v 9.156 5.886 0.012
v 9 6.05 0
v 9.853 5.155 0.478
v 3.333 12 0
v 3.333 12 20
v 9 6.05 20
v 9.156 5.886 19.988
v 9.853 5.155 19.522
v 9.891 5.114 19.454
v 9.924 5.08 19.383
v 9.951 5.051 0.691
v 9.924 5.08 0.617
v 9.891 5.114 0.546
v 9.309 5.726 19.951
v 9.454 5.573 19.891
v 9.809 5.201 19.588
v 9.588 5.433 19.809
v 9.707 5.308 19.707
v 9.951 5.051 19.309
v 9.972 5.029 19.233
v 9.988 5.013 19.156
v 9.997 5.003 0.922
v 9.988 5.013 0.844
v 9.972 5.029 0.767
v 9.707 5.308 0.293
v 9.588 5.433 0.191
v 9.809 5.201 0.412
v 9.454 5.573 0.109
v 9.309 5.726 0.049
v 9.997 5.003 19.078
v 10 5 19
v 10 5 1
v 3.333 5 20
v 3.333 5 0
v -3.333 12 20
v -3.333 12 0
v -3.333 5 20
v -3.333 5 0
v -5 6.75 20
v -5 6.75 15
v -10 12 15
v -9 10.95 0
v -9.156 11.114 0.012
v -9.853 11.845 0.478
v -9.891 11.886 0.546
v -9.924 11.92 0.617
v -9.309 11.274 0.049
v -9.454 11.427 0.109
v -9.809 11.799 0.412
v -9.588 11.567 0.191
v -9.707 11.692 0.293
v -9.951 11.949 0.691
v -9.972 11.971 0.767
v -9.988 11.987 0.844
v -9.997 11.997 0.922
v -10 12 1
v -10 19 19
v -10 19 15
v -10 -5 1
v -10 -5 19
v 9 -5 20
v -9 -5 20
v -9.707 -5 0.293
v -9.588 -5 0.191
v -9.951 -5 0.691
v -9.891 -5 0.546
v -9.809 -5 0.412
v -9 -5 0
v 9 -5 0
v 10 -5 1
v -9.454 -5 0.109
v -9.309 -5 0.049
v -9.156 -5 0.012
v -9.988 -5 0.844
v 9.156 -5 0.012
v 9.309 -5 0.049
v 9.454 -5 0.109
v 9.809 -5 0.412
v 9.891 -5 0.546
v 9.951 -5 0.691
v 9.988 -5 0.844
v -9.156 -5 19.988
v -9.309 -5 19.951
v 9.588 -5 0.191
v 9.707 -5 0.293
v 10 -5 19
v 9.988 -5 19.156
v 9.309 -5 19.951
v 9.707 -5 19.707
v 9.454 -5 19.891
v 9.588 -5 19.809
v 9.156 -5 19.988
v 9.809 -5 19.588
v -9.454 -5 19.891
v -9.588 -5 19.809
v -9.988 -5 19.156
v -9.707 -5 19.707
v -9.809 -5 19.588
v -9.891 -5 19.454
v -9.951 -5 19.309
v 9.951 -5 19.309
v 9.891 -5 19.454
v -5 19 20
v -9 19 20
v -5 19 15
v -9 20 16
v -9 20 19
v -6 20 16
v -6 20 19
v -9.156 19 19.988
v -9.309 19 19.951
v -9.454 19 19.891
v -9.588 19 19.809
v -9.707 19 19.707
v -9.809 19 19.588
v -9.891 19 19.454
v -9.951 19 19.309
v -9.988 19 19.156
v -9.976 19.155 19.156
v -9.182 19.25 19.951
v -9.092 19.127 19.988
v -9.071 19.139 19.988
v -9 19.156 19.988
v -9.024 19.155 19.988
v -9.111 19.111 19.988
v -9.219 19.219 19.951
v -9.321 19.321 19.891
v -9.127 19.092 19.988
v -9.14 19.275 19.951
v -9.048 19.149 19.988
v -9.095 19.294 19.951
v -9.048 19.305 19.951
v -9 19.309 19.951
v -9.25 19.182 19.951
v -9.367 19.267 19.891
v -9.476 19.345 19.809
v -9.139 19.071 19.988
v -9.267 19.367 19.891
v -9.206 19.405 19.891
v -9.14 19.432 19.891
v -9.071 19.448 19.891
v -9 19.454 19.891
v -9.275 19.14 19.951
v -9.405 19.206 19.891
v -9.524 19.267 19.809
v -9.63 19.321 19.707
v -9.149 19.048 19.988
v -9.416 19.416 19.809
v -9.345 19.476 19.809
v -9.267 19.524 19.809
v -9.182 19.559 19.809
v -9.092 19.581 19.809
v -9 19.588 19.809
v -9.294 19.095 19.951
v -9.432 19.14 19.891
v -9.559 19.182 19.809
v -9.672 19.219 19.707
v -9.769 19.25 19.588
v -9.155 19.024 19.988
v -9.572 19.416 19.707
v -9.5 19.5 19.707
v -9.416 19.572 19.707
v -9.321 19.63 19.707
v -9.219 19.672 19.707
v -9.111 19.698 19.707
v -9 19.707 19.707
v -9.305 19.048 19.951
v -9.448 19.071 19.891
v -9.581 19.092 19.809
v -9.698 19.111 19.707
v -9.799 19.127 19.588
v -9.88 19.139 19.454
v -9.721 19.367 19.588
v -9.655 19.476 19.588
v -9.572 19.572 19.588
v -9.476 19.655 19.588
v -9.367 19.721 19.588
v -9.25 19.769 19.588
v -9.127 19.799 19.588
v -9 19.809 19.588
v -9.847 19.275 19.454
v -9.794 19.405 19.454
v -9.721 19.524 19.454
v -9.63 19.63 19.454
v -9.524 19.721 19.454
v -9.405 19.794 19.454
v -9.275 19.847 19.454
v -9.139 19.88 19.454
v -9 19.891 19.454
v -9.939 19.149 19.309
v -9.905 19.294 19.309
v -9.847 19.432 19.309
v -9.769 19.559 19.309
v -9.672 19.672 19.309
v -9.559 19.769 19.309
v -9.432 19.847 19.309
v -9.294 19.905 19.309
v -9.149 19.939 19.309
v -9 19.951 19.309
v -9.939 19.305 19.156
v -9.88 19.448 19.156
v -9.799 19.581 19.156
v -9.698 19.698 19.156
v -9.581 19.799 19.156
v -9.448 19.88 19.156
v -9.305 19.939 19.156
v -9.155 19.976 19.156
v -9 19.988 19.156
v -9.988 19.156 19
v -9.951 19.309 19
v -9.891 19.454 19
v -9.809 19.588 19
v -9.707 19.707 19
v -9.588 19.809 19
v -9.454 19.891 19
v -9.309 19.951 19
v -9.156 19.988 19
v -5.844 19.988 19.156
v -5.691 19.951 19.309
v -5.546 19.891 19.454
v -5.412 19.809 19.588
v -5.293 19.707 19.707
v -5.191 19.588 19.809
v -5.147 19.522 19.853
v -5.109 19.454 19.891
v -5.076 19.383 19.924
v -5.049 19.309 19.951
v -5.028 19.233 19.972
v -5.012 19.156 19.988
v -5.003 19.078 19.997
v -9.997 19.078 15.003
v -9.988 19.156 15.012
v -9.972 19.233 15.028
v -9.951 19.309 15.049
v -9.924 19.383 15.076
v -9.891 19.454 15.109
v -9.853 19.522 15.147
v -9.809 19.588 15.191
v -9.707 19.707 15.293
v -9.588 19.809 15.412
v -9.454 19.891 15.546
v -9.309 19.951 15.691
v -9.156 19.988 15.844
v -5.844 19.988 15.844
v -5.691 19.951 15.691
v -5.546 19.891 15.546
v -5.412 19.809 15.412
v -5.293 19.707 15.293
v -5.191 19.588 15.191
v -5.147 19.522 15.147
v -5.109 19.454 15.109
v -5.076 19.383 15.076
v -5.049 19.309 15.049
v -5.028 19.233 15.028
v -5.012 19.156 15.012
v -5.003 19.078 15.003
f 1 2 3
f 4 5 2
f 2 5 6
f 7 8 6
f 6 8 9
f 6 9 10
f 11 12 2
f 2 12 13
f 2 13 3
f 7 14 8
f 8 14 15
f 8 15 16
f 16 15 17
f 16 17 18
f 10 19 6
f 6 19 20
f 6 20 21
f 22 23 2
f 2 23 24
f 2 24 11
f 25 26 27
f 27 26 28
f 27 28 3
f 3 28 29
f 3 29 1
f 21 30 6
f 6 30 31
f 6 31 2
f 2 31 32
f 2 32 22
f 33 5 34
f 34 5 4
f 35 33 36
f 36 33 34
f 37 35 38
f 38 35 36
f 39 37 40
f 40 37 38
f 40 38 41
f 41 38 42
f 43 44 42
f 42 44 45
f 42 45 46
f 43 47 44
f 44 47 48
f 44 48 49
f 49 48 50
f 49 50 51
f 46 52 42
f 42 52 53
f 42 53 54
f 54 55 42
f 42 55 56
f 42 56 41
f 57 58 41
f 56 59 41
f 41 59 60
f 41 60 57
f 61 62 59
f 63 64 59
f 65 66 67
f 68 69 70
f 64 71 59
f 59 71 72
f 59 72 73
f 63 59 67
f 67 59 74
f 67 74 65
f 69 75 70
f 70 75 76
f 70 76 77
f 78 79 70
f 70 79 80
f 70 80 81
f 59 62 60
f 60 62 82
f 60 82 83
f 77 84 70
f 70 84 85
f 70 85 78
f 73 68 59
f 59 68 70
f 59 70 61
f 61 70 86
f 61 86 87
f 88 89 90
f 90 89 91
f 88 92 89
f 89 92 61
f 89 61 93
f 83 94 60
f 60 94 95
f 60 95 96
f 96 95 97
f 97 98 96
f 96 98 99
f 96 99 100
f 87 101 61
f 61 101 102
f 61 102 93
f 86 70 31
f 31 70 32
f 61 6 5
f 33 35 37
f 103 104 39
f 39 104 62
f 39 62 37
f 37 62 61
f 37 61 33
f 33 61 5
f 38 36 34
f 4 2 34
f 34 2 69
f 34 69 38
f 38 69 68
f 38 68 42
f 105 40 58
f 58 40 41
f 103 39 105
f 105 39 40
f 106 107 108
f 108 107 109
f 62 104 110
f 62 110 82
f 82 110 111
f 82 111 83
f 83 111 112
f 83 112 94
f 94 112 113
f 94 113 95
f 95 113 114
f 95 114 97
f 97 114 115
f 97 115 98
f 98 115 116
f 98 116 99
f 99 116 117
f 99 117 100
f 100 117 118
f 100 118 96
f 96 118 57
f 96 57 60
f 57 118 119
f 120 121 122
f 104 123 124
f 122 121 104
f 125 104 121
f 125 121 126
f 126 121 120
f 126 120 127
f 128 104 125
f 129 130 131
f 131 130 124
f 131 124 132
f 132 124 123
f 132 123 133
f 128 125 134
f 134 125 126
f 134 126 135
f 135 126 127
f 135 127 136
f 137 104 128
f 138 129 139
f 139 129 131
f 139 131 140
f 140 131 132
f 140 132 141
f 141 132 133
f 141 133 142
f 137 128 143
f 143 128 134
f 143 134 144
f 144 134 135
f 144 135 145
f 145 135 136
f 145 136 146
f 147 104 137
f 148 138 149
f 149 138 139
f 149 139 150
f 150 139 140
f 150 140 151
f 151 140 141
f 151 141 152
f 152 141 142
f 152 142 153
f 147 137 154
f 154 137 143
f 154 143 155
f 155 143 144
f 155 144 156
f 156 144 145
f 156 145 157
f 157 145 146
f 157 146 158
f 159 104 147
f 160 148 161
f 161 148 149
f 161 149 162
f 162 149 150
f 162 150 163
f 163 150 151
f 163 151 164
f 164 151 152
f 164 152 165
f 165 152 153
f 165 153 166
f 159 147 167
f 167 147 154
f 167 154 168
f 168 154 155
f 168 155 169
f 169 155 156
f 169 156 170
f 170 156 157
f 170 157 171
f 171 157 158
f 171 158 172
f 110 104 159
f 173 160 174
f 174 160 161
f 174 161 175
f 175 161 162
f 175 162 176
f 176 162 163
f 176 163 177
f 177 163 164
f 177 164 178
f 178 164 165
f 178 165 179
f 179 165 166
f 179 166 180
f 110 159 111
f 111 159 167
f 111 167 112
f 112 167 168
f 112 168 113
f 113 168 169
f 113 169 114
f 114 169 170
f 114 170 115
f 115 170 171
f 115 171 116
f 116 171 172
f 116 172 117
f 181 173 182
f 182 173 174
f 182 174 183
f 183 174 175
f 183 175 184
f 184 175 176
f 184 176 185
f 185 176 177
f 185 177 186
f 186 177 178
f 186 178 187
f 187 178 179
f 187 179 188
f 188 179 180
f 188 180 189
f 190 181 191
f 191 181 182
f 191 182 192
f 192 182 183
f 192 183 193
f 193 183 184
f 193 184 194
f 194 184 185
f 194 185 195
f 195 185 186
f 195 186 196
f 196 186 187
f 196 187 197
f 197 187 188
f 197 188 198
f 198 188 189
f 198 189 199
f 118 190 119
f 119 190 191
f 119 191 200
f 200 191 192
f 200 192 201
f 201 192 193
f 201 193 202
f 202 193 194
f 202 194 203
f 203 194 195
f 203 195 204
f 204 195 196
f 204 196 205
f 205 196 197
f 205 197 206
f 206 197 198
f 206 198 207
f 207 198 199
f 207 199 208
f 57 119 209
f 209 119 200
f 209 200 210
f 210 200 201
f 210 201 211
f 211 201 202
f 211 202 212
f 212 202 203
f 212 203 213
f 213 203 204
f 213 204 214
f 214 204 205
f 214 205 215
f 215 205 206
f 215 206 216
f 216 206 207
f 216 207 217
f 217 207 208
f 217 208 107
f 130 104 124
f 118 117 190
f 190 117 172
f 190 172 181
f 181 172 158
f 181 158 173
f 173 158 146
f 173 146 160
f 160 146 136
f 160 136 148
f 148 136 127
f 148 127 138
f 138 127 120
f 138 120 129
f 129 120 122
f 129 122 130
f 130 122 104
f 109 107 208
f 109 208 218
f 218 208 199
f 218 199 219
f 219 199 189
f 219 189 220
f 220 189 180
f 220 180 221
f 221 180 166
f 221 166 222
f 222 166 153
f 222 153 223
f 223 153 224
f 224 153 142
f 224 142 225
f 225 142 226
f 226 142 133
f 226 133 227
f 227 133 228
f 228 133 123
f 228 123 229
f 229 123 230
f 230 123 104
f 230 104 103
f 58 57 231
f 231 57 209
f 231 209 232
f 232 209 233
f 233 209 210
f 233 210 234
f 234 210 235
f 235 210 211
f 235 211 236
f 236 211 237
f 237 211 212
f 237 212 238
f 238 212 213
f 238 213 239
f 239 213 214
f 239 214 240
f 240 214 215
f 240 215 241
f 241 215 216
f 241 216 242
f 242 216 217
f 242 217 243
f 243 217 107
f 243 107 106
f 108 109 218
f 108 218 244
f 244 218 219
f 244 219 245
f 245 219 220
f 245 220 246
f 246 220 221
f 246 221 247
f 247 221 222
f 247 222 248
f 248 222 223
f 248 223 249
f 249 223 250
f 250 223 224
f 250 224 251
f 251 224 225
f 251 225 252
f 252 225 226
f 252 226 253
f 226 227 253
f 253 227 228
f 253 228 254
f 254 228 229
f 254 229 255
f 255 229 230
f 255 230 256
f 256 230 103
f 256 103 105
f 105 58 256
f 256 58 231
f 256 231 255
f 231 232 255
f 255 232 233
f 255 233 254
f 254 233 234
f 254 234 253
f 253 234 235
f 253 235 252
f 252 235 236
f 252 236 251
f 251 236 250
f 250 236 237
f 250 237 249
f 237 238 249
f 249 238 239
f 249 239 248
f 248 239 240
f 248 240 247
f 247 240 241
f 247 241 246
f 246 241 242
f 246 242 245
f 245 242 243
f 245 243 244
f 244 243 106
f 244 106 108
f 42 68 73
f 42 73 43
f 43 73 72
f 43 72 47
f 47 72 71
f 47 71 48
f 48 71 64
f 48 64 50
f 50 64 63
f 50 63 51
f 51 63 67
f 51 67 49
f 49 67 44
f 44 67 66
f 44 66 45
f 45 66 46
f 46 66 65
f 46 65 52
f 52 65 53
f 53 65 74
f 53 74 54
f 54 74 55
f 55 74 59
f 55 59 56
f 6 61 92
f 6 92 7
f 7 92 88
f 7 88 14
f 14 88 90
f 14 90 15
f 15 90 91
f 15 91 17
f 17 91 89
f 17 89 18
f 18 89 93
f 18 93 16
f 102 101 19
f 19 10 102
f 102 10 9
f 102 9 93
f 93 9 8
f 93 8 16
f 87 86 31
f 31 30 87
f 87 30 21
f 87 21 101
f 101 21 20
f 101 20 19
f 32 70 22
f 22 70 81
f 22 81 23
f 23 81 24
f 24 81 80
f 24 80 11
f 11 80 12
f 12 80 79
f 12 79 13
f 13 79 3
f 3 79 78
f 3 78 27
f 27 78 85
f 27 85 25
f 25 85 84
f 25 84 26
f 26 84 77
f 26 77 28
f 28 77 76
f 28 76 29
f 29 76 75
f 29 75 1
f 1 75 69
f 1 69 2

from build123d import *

# Parameters (mm, degrees)
EXTRUDE_1_DEPTH = 20
SKETCH_2_W      = 5
SKETCH_2_H      = 5
EXTRUDE_2_DEPTH = 25
FILLET_1_R      = 1


with BuildPart() as part:
    # 草图1 → 凸台-拉伸1 (new body)
    with BuildSketch(Plane.XY):
        Polygon((-10, 5), (-10, 12), (-3.333333333, 5), (-3.333333333, 12), (3.333333333, 5), (3.333333333, 12), (10, 5), (10, -5), (-10, -5), align=None)
    extrude(amount=EXTRUDE_1_DEPTH)

    # 草图2 → 凸台-拉伸2 (add)
    with BuildSketch(Plane.XZ.offset(5)):
        with Locations((-7.5, 17.5)):
            Rectangle(SKETCH_2_W, SKETCH_2_H)
    extrude(amount=-EXTRUDE_2_DEPTH)

    # 圆角1
    fillet_1_edges = [part.edges().sort_by_distance(p)[0] for p in [
        (-10, 7.5, 20),
        (10, 0, 20),
        (-7.5, 20, 20),
        (-7.5, 20, 15),
        (-10, 20, 17.5),
        (-5, 20, 17.5),
        (10, 0, 0),
        (-10, 3.5, 0),
    ]]
    fillet(fillet_1_edges, radius=FILLET_1_R)


solid = part.part
